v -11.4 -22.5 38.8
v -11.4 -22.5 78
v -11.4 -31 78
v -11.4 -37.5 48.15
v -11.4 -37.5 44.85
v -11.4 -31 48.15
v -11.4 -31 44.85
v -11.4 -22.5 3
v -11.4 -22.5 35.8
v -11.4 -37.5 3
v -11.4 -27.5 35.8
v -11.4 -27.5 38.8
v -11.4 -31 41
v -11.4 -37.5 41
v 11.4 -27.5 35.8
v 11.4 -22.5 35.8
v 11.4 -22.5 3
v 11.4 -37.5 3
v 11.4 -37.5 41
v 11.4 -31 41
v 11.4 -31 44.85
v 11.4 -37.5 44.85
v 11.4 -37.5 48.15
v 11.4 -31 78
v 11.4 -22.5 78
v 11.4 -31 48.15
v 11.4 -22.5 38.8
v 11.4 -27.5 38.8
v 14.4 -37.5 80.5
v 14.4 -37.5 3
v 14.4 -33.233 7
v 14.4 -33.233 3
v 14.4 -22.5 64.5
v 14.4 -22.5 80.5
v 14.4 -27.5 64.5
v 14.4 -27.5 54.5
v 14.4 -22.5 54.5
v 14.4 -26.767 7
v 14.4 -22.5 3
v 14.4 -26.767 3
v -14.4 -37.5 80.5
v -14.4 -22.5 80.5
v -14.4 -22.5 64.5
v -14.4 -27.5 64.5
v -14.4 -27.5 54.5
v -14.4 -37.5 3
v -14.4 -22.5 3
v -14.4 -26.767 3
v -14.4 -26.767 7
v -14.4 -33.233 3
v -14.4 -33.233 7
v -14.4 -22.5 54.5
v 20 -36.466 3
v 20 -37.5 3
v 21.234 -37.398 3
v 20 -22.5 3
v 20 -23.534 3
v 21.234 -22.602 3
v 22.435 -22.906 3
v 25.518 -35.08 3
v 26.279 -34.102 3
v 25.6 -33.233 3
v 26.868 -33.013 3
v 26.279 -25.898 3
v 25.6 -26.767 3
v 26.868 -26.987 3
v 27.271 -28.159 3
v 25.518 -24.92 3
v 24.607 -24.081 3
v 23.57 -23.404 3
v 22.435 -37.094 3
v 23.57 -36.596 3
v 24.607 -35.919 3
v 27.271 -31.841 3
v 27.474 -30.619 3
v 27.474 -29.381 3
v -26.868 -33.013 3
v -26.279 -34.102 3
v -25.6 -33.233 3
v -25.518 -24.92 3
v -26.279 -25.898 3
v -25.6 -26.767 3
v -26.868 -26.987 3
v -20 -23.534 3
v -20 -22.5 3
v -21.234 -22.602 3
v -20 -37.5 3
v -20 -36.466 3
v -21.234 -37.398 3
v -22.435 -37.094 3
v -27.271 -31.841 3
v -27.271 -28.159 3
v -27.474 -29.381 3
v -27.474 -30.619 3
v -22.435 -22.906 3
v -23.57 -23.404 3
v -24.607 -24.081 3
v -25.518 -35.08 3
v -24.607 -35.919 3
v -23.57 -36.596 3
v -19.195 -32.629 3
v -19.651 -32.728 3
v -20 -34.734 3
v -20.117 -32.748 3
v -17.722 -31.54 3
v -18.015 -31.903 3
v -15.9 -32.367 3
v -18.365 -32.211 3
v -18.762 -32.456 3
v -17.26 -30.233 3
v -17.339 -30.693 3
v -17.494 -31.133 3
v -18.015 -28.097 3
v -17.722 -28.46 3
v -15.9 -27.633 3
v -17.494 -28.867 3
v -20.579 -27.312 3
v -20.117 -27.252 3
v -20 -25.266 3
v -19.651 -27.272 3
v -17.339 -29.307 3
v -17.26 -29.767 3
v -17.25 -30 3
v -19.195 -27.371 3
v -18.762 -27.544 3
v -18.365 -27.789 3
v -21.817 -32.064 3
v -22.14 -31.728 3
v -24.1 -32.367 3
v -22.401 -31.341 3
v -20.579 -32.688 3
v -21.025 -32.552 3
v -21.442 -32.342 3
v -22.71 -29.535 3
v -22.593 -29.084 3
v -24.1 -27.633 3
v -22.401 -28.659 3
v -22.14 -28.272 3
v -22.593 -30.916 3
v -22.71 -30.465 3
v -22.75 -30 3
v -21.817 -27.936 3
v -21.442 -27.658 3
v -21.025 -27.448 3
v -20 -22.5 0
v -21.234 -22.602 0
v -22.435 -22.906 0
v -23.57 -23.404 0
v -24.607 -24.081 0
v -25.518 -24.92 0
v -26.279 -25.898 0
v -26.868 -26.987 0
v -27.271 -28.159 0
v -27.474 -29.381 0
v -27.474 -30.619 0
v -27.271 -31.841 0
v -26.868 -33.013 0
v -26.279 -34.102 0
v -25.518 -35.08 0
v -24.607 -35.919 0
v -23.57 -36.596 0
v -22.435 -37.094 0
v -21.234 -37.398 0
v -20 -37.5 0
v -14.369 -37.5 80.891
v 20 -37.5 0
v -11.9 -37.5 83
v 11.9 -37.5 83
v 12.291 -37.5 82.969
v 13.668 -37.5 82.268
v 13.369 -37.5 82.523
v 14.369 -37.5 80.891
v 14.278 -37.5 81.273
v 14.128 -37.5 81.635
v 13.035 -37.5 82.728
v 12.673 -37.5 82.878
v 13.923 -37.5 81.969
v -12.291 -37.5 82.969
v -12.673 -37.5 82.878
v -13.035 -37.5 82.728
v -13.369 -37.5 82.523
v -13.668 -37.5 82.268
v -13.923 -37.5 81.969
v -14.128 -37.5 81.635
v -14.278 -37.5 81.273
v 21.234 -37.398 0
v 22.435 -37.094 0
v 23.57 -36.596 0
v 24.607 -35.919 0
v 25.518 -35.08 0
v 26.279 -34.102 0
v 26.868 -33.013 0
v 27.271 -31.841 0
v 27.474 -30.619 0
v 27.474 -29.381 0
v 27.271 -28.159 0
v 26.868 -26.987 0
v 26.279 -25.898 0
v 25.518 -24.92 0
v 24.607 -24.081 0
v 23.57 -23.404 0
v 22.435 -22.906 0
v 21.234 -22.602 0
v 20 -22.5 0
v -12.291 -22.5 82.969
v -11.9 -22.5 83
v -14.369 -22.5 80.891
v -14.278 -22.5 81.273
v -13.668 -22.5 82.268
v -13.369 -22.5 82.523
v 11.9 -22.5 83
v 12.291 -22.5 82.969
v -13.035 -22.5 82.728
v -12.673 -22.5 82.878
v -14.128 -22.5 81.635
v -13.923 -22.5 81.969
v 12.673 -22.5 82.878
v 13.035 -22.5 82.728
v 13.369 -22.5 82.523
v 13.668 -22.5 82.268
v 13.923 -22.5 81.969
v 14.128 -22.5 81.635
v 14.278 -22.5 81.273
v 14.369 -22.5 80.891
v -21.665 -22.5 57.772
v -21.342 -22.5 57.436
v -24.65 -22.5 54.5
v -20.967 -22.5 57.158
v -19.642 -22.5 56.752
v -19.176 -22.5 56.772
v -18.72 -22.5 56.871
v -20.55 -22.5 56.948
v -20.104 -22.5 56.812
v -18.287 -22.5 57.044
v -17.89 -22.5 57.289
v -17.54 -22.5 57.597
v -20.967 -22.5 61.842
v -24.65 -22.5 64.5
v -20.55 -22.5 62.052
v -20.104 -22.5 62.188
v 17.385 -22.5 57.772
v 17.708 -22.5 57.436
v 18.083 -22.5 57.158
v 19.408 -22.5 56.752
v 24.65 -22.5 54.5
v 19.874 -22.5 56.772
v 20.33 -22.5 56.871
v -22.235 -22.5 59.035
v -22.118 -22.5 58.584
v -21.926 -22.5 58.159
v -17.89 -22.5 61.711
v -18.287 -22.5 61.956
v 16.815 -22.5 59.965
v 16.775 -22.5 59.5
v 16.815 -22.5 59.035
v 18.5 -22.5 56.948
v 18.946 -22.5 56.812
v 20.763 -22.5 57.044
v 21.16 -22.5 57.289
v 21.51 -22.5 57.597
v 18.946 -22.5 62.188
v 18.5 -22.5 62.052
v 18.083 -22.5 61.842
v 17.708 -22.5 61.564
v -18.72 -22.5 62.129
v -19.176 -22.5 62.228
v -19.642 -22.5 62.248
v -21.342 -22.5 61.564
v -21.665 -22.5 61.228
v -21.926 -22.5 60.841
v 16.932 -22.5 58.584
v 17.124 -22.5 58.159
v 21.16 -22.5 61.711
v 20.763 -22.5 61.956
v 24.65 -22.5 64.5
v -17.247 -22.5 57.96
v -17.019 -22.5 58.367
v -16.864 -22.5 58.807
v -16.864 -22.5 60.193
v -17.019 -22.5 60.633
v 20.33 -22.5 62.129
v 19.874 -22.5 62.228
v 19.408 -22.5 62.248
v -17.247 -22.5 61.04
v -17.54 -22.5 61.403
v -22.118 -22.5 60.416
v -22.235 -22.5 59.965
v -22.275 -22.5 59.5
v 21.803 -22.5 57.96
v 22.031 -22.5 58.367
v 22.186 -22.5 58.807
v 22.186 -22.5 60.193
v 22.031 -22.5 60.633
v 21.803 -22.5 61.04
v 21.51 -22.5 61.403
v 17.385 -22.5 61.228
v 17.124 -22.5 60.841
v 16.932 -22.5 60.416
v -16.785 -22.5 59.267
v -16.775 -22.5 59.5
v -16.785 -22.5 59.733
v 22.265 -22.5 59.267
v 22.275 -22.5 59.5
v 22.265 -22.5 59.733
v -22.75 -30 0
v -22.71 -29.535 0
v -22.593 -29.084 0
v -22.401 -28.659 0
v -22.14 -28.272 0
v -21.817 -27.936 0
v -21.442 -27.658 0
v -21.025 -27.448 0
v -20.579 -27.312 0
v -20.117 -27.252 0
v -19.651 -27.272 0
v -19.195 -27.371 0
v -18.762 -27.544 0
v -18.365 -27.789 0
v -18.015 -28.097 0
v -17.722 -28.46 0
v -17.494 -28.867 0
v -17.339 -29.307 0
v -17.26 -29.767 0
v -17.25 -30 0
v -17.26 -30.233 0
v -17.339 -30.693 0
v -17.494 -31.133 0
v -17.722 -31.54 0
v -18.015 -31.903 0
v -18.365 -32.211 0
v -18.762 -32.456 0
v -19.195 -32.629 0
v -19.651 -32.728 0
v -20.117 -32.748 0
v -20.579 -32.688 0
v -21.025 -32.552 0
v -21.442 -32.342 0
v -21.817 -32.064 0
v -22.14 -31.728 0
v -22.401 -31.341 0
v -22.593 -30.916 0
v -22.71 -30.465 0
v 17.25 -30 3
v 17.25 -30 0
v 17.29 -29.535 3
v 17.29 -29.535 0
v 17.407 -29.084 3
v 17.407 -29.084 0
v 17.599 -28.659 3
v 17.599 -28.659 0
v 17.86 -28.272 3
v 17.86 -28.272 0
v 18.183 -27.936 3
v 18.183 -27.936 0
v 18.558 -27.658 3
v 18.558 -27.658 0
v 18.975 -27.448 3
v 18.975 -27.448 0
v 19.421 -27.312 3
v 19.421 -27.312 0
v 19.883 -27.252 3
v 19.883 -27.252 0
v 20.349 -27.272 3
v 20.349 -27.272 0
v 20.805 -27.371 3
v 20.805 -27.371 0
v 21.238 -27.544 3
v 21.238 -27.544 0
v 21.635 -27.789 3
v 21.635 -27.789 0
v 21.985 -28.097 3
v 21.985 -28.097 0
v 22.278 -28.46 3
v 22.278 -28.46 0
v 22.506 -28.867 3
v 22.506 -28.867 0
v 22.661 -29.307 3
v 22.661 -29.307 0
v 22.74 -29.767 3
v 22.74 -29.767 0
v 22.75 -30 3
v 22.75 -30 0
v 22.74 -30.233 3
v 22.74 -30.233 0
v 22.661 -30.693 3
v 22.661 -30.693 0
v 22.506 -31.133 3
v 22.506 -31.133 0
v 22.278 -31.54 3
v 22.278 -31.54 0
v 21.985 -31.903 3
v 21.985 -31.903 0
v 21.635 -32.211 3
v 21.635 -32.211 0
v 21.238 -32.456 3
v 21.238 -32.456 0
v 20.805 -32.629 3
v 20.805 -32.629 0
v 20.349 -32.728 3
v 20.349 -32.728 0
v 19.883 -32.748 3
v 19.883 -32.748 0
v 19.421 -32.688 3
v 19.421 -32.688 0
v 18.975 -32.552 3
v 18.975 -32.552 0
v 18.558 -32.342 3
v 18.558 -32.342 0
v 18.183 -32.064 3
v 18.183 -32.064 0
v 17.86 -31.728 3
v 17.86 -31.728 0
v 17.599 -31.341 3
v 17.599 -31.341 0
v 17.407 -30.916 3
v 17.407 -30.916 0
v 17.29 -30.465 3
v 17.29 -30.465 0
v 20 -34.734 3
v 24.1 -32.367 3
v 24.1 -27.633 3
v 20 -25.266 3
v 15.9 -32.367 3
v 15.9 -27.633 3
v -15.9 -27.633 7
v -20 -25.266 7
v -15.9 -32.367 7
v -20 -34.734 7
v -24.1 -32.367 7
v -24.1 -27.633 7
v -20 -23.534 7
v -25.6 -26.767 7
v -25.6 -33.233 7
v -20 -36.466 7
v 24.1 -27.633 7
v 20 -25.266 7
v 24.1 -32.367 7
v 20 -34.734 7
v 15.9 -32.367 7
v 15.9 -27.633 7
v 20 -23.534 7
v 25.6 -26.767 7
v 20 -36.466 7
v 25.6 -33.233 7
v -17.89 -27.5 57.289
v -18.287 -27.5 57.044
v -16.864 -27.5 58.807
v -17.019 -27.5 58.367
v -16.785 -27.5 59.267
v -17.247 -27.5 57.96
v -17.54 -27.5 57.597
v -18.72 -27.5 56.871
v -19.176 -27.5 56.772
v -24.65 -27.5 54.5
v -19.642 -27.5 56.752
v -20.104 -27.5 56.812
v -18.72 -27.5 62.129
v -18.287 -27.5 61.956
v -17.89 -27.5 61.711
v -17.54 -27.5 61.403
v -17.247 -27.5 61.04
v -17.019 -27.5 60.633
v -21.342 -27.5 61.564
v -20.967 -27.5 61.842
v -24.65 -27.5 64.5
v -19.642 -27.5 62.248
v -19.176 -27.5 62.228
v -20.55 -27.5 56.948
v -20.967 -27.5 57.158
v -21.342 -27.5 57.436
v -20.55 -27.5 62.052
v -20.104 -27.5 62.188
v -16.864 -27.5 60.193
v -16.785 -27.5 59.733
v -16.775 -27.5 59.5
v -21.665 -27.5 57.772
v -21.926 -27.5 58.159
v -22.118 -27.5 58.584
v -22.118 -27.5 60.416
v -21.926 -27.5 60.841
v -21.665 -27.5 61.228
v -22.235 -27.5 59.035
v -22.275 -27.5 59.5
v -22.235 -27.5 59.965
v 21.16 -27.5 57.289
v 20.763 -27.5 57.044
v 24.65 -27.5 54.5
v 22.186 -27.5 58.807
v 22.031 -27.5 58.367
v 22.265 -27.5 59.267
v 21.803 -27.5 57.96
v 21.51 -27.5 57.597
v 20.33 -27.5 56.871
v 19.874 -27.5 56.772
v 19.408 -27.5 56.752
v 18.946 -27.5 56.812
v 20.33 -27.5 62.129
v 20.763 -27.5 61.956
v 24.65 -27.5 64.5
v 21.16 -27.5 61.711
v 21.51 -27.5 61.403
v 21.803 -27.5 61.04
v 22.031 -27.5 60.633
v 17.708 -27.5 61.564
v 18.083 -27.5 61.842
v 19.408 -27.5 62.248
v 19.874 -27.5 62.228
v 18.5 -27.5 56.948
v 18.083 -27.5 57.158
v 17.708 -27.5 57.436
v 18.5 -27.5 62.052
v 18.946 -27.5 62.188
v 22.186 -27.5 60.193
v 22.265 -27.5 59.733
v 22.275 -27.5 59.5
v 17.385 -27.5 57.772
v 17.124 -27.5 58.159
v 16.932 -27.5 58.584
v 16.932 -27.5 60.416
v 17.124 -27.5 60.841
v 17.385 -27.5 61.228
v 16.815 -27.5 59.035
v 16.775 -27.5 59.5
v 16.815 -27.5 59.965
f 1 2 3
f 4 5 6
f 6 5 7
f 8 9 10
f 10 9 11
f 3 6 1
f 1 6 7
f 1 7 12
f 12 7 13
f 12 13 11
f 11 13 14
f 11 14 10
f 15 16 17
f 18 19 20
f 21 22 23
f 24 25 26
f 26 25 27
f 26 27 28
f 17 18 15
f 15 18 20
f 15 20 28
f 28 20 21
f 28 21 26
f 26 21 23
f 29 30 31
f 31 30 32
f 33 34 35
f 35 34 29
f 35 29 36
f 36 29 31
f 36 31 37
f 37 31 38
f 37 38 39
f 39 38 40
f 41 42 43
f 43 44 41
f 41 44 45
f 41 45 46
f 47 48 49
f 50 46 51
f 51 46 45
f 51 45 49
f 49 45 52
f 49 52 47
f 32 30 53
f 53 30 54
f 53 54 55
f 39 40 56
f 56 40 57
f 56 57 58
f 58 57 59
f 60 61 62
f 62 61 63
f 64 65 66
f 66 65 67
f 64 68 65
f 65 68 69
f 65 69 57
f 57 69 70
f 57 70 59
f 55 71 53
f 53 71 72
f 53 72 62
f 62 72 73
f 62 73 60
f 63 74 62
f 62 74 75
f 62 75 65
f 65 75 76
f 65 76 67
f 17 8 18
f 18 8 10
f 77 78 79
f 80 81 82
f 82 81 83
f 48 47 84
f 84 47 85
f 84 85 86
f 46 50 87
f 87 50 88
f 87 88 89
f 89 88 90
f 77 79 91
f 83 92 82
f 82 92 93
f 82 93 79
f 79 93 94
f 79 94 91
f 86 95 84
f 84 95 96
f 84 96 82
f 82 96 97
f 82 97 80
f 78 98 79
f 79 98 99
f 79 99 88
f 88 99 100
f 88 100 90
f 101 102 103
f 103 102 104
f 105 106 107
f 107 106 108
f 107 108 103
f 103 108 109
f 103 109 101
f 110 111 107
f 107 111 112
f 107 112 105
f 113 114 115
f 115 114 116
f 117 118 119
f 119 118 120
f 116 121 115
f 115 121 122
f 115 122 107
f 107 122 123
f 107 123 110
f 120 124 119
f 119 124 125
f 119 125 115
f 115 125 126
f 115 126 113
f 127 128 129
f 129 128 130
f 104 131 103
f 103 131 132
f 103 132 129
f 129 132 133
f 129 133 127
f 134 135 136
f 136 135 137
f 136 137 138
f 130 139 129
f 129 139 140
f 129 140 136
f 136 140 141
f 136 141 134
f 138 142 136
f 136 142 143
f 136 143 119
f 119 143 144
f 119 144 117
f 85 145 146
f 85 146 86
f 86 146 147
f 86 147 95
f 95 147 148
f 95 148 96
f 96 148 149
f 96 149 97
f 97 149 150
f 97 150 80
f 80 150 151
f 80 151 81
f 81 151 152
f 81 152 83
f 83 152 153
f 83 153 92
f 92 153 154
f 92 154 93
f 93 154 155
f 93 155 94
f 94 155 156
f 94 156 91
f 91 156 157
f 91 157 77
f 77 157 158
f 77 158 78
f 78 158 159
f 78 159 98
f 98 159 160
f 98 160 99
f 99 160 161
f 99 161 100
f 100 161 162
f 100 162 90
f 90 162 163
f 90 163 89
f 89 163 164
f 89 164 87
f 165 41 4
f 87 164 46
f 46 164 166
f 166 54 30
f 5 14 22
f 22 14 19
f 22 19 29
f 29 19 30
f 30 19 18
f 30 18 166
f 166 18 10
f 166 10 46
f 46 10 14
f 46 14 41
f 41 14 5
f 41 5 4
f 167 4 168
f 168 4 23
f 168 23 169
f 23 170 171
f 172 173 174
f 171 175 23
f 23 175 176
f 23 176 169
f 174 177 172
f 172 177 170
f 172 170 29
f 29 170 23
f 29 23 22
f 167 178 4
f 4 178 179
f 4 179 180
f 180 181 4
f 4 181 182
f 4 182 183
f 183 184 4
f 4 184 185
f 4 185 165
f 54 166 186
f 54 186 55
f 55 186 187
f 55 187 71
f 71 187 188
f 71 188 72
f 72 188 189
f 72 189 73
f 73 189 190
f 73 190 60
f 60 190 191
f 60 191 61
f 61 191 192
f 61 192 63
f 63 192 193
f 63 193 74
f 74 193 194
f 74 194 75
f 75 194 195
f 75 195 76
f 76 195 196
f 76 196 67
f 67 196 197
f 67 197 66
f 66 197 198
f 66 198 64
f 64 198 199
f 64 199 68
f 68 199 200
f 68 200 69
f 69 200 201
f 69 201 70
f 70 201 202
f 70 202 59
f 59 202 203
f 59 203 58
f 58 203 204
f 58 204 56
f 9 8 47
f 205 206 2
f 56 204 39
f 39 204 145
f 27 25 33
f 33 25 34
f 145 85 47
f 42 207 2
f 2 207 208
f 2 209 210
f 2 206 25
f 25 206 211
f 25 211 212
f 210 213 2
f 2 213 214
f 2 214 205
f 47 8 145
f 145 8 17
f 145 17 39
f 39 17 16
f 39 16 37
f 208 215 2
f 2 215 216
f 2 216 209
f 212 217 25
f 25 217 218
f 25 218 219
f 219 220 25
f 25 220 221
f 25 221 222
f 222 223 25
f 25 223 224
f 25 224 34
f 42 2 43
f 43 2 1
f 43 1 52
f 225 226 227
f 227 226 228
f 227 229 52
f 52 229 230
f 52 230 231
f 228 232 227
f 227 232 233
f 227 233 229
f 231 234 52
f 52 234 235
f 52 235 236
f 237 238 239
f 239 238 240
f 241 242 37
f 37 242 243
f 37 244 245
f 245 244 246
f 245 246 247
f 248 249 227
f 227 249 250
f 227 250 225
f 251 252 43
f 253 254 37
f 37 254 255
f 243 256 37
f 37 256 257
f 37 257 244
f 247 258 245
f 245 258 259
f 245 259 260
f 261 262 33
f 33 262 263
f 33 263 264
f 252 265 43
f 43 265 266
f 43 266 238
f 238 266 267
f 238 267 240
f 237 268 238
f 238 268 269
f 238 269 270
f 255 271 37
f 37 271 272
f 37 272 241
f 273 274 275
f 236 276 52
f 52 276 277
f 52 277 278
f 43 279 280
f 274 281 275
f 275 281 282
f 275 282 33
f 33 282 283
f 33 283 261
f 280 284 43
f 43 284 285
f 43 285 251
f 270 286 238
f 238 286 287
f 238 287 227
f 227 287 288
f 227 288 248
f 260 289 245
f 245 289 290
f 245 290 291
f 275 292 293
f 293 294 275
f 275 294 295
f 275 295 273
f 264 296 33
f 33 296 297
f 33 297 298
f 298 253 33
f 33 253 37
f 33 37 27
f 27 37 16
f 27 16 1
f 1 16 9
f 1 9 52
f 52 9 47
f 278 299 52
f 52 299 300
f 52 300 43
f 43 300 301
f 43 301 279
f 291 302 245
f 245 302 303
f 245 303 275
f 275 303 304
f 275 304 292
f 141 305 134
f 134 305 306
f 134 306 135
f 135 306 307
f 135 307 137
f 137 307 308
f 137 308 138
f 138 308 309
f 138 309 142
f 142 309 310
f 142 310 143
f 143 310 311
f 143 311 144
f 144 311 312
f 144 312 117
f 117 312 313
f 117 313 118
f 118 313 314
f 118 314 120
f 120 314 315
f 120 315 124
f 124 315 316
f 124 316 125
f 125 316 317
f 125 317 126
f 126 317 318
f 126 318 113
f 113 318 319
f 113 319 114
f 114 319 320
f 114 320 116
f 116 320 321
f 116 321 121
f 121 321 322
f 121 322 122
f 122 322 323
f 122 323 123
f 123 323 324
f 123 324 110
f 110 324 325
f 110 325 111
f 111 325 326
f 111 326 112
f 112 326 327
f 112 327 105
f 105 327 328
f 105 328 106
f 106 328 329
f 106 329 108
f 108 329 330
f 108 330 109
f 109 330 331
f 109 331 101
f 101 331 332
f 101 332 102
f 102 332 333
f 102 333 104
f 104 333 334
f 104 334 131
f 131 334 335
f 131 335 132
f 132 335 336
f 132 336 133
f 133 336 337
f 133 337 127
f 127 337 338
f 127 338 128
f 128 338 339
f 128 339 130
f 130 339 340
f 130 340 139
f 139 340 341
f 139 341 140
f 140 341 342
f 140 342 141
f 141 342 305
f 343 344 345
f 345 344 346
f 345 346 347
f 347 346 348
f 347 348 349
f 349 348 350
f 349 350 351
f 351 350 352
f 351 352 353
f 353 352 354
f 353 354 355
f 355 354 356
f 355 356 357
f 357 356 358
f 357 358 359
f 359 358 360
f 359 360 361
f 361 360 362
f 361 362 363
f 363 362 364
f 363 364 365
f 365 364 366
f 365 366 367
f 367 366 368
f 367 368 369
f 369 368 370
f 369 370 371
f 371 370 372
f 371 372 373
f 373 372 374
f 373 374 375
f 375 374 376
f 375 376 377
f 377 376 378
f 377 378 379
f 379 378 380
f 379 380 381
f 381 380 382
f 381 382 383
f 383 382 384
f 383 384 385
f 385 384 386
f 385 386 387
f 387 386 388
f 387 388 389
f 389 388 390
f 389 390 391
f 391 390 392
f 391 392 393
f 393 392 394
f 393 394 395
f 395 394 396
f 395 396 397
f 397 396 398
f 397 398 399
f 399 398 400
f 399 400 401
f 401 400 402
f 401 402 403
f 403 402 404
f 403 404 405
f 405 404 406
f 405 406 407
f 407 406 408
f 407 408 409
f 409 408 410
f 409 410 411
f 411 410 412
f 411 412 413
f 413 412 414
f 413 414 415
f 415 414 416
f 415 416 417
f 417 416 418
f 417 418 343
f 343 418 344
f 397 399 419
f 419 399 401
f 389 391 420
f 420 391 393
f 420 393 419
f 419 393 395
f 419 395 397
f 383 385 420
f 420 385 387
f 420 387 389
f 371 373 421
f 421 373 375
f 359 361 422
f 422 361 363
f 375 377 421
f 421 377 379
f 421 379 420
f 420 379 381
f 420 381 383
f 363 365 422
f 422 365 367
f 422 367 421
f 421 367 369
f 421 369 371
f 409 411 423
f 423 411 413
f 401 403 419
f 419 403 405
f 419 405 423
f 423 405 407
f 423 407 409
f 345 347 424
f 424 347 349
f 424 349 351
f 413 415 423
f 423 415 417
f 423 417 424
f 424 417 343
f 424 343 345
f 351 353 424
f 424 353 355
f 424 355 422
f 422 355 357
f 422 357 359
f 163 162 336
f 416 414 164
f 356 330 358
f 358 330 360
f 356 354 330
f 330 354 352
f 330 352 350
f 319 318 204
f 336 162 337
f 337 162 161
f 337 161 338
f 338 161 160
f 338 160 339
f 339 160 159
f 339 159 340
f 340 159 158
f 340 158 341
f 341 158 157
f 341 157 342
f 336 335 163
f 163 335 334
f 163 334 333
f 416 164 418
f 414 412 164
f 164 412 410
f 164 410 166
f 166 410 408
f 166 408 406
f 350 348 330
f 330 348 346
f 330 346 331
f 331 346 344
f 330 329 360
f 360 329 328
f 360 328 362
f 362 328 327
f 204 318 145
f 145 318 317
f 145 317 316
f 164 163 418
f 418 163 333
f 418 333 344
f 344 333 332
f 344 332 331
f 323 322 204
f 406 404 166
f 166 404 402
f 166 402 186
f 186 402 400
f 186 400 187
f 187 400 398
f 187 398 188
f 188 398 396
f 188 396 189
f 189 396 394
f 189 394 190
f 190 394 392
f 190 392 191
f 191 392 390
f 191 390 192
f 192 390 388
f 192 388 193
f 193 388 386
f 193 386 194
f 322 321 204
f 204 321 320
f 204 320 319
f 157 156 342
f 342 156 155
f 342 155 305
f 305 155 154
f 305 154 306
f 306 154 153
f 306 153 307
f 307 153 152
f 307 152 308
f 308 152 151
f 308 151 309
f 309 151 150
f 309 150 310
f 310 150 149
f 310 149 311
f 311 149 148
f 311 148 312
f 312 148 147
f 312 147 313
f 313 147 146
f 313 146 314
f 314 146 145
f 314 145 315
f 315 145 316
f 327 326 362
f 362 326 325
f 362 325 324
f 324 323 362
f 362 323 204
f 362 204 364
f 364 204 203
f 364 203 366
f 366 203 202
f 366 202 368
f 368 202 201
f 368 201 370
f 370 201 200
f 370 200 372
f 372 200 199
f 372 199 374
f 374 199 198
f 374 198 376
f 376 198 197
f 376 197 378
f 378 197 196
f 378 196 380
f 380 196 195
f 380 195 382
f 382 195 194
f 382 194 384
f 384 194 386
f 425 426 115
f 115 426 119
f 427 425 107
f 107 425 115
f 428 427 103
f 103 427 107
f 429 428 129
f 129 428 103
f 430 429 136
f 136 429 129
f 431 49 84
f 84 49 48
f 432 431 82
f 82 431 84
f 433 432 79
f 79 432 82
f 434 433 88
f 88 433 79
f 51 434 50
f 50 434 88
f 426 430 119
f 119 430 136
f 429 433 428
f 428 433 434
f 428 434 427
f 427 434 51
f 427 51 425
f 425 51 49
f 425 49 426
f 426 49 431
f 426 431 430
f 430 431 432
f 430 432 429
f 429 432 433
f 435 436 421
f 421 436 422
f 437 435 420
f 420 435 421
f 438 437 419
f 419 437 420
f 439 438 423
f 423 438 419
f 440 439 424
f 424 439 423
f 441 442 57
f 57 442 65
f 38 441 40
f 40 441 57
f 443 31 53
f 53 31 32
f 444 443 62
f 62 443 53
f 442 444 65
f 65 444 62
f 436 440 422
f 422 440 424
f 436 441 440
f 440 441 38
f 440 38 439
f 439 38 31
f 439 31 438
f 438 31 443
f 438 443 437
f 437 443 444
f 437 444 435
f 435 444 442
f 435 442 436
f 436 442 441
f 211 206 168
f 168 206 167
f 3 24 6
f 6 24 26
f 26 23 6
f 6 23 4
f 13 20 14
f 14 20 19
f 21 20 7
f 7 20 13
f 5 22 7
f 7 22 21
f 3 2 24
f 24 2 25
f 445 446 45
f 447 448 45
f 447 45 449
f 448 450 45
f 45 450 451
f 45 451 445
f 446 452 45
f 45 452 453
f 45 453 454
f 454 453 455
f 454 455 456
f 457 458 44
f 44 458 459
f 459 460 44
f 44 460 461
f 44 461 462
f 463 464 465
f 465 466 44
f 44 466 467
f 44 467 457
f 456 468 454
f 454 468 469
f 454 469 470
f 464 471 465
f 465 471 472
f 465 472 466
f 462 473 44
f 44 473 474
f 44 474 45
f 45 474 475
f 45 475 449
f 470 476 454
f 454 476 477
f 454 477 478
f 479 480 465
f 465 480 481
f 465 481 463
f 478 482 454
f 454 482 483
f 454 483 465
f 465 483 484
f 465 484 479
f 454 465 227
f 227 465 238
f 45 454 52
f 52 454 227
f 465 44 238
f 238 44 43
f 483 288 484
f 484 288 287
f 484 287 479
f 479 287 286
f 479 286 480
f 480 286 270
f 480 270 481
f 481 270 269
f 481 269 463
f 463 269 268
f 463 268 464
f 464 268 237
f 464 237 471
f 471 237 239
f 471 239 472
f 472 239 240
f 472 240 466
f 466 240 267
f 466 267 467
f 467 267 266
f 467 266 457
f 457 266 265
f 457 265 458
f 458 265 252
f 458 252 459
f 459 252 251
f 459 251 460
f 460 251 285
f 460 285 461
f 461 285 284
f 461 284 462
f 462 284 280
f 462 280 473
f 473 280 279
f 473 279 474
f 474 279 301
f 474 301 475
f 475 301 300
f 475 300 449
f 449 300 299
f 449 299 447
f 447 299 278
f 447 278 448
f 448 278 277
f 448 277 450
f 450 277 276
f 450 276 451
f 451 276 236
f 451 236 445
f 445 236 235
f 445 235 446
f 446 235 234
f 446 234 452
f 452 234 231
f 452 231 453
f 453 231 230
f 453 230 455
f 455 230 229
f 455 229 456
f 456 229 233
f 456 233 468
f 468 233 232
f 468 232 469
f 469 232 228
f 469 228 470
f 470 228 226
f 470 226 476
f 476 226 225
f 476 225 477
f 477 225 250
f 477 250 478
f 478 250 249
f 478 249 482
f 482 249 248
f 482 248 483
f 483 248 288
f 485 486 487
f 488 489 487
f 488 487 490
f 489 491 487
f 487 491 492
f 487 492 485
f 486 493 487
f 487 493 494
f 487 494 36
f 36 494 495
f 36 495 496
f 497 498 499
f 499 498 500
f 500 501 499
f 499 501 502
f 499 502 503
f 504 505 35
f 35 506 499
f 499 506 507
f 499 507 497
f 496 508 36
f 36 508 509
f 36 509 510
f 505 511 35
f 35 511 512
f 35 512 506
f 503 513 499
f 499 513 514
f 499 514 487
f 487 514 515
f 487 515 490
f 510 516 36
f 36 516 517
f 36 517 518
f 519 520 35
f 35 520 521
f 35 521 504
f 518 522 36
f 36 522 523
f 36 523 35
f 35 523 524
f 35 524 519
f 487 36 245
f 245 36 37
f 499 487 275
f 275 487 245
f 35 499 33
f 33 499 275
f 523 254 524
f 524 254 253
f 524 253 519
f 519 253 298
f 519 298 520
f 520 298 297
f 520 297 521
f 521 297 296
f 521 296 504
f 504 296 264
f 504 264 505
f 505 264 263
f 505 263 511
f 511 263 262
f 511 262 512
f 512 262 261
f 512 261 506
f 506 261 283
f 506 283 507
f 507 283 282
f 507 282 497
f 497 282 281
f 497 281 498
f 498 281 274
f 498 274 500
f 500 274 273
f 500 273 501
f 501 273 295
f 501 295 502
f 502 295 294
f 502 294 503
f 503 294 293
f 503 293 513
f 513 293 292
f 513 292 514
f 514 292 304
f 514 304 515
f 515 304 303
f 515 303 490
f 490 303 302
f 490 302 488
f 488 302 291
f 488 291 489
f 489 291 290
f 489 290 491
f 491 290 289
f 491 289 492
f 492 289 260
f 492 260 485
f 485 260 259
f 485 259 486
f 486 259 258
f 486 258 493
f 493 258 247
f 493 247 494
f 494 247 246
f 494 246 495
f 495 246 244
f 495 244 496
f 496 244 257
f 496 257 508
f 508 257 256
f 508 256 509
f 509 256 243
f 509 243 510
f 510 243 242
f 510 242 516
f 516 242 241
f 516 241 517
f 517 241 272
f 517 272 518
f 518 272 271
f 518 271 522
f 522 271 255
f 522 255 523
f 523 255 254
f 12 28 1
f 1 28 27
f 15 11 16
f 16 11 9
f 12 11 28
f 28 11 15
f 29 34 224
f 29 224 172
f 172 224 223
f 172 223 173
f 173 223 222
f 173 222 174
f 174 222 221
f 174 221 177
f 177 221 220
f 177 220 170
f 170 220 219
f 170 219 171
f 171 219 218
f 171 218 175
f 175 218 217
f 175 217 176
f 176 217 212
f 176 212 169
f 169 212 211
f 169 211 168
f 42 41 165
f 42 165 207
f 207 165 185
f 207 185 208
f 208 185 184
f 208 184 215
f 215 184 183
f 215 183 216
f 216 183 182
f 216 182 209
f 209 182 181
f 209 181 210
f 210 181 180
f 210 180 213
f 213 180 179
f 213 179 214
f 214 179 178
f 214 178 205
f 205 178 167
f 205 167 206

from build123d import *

# Parameters (mm, degrees)
SKETCH2_R           = 7.5
SKETCH2_R_2         = 2.75
BOSS_EXTRUDE1_DEPTH = 3
SKETCH3_R           = 5.6
BOSS_EXTRUDE2_DEPTH = 4
BOSS_EXTRUDE3_DEPTH = 80
SKETCH5_W           = 29.85
SKETCH5_H           = 6.5
SKETCH5_W_2         = 3.85
BOSS_EXTRUDE4_DEPTH = 80
SKETCH6_W           = 29.85
SKETCH6_H           = 6.5
SKETCH6_W_2         = 3.85
CUT_EXTRUDE1_DEPTH  = 54.2
BOSS_EXTRUDE5_DEPTH = 22.8
SKETCH8_W           = 10.25
SKETCH8_H           = 10
SKETCH8_R           = 2.75
BOSS_EXTRUDE6_DEPTH = 5
BOSS_EXTRUDE7_DEPTH = 5
FILLET1_R           = 2.5


with BuildPart() as part:
    # Sketch2 → Boss-Extrude1 (new body)
    # profile 1 of 4: a face of its own
    with BuildSketch(Plane.XY):
        with Locations((-20, -30)):
            Circle(SKETCH2_R)
        with Locations((-20, -30)):
            Circle(SKETCH2_R_2, mode=Mode.SUBTRACT)
    # profile 2 of 4: a face of its own
    with BuildSketch(Plane.XY):
        with BuildLine():
            Line((12.5, -22.5), (-20, -22.5))
            ThreePointArc((-20, -22.5), (-14.696699141, -24.696699141), (-12.5, -30))
            ThreePointArc((-12.5, -30), (-14.696699141, -35.303300859), (-20, -37.5))
            Line((-20, -37.5), (20, -37.5))
            ThreePointArc((20, -37.5), (14.696699141, -35.303300859), (12.5, -30))
            Line((12.5, -30), (12.5, -22.5))
        make_face()
    # profile 3 of 4: a face of its own
    with BuildSketch(Plane.XY):
        with Locations((20, -30)):
            Circle(SKETCH2_R)
        with Locations((20, -30)):
            Circle(SKETCH2_R_2, mode=Mode.SUBTRACT)
    # profile 4 of 4: a face of its own
    with BuildSketch(Plane.XY):
        with BuildLine():
            Line((20, -22.5), (12.5, -22.5))
            Line((12.5, -22.5), (12.5, -30))
            ThreePointArc((12.5, -30), (14.696699141, -24.696699141), (20, -22.5))
        make_face()
    extrude(amount=BOSS_EXTRUDE1_DEPTH)

    # Sketch3 → Boss-Extrude2 (add)
    # profile 1 of 14: a face of its own
    with BuildSketch(Plane.XY.offset(3)):
        with BuildLine():
            Line((-14.4, -26.766838493), (-17.199999967, -25.150257758))
            ThreePointArc((-17.199999967, -25.150257758), (-15.150257729, -27.200000016), (-14.4, -30))
            Line((-14.4, -30), (-14.4, -26.766838493))
        make_face()
    # profile 2 of 14: a face of its own
    with BuildSketch(Plane.XY.offset(3)):
        with Locations((-20, -30)):
            Circle(SKETCH3_R)
        Polygon((-15.9, -27.632863896), (-20, -25.265727793), (-24.1, -27.632863896), (-24.1, -32.367136104), (-20, -34.734272207), (-15.9, -32.367136104), align=None, mode=Mode.SUBTRACT)
    # profile 3 of 14: a face of its own
    with BuildSketch(Plane.XY.offset(3)):
        with BuildLine():
            Line((-17.199999967, -25.150257758), (-20, -23.533676985))
            Line((-20, -23.533676985), (-22.800000033, -25.150257758))
            ThreePointArc((-22.800000033, -25.150257758), (-20, -24.4), (-17.199999967, -25.150257758))
        make_face()
    # profile 4 of 14: a face of its own
    with BuildSketch(Plane.XY.offset(3)):
        with BuildLine():
            ThreePointArc((-25.6, -30), (-24.849742271, -27.200000016), (-22.800000033, -25.150257758))
            Line((-22.800000033, -25.150257758), (-25.6, -26.766838493))
            Line((-25.6, -26.766838493), (-25.6, -30))
        make_face()
    # profile 5 of 14: a face of its own
    with BuildSketch(Plane.XY.offset(3)):
        with BuildLine():
            ThreePointArc((-22.800000033, -34.849742242), (-24.849742271, -32.799999984), (-25.6, -30))
            Line((-25.6, -30), (-25.6, -33.233161507))
            Line((-25.6, -33.233161507), (-22.800000033, -34.849742242))
        make_face()
    # profile 6 of 14: a face of its own
    with BuildSketch(Plane.XY.offset(3)):
        with BuildLine():
            ThreePointArc((-17.199999967, -34.849742242), (-20, -35.6), (-22.800000033, -34.849742242))
            Line((-22.800000033, -34.849742242), (-20, -36.466323015))
            Line((-20, -36.466323015), (-17.199999967, -34.849742242))
        make_face()
    # profile 7 of 14: a face of its own
    with BuildSketch(Plane.XY.offset(3)):
        with BuildLine():
            Line((-14.4, -33.233161507), (-14.4, -30))
            ThreePointArc((-14.4, -30), (-15.150257729, -32.799999984), (-17.199999967, -34.849742242))
            Line((-17.199999967, -34.849742242), (-14.4, -33.233161507))
        make_face()
    # profile 8 of 14: a face of its own
    with BuildSketch(Plane.XY.offset(3)):
        with BuildLine():
            Line((25.6, -26.766838493), (22.800000033, -25.150257758))
            ThreePointArc((22.800000033, -25.150257758), (24.849742271, -27.200000016), (25.6, -30))
            Line((25.6, -30), (25.6, -26.766838493))
        make_face()
    # profile 9 of 14: a face of its own
    with BuildSketch(Plane.XY.offset(3)):
        with Locations((20, -30)):
            Circle(SKETCH3_R)
        Polygon((24.1, -27.632863896), (20, -25.265727793), (15.9, -27.632863896), (15.9, -32.367136104), (20, -34.734272207), (24.1, -32.367136104), align=None, mode=Mode.SUBTRACT)
    # profile 10 of 14: a face of its own
    with BuildSketch(Plane.XY.offset(3)):
        with BuildLine():
            Line((22.800000033, -25.150257758), (20, -23.533676985))
            Line((20, -23.533676985), (17.199999967, -25.150257758))
            ThreePointArc((17.199999967, -25.150257758), (20, -24.4), (22.800000033, -25.150257758))
        make_face()
    # profile 11 of 14: a face of its own
    with BuildSketch(Plane.XY.offset(3)):
        with BuildLine():
            ThreePointArc((14.4, -30), (15.150257729, -27.200000016), (17.199999967, -25.150257758))
            Line((17.199999967, -25.150257758), (14.4, -26.766838493))
            Line((14.4, -26.766838493), (14.4, -30))
        make_face()
    # profile 12 of 14: a face of its own
    with BuildSketch(Plane.XY.offset(3)):
        with BuildLine():
            ThreePointArc((17.199999967, -34.849742242), (15.150257729, -32.799999984), (14.4, -30))
            Line((14.4, -30), (14.4, -33.233161507))
            Line((14.4, -33.233161507), (17.199999967, -34.849742242))
        make_face()
    # profile 13 of 14: a face of its own
    with BuildSketch(Plane.XY.offset(3)):
        with BuildLine():
            ThreePointArc((22.799999796, -34.849742379), (19.999999863, -35.6), (17.199999967, -34.849742242))
            Line((17.199999967, -34.849742242), (20, -36.466323015))
            Line((20, -36.466323015), (22.799999796, -34.849742379))
        make_face()
    # profile 14 of 14: a face of its own
    with BuildSketch(Plane.XY.offset(3)):
        with BuildLine():
            Line((25.6, -33.233161507), (25.6, -30))
            ThreePointArc((25.6, -30), (24.849742202, -32.800000102), (22.799999796, -34.849742379))
            Line((22.799999796, -34.849742379), (25.6, -33.233161507))
        make_face()
    extrude(amount=BOSS_EXTRUDE2_DEPTH)

    # Sketch4 → Boss-Extrude3 (add)
    with BuildSketch(Plane.XY.offset(3)):
        Polygon((-14.4, -26.766838493), (-14.4, -22.5), (-11.4, -22.5), (-11.4, -37.5), (-14.4, -37.5), align=None)
        Polygon((14.4, -30), (14.4, -22.5), (11.4, -22.5), (11.4, -37.5), (14.4, -37.5), align=None)
    extrude(amount=BOSS_EXTRUDE3_DEPTH)

    # Sketch5 → Boss-Extrude4 (add)
    with BuildSketch(Plane.ZY.offset(-11.4)):
        with Locations((63.075, -34.25)):
            Rectangle(SKETCH5_W, SKETCH5_H)
        with Locations((42.925, -34.25)):
            Rectangle(SKETCH5_W_2, SKETCH5_H)
    extrude(amount=BOSS_EXTRUDE4_DEPTH)

    # Sketch6 → Cut-Extrude1 (cut)
    with BuildSketch(Plane.ZY.offset(68.6)):
        with Locations((63.075, -34.25)):
            Rectangle(SKETCH6_W, SKETCH6_H)
        with Locations((42.925, -34.25)):
            Rectangle(SKETCH6_W_2, SKETCH6_H)
    extrude(amount=-CUT_EXTRUDE1_DEPTH, mode=Mode.SUBTRACT)

    # Sketch7 → Boss-Extrude5 (add)
    with BuildSketch(Plane.ZY.offset(-11.4)):
        Polygon((78, -31), (78, -22.5), (83, -22.5), (83, -37.5), (78, -37.5), align=None)
    extrude(amount=BOSS_EXTRUDE5_DEPTH)

    # Sketch8 → Boss-Extrude6 (add)
    # profile 1 of 2: a face of its own
    with BuildSketch(Plane.XZ.offset(22.5)):
        with Locations((-19.525, 59.5)):
            Rectangle(SKETCH8_W, SKETCH8_H)
        with Locations((-19.525, 59.5)):
            Circle(SKETCH8_R, mode=Mode.SUBTRACT)
    # profile 2 of 2: a face of its own
    with BuildSketch(Plane.XZ.offset(22.5)):
        with Locations((19.525, 59.5)):
            Rectangle(SKETCH8_W, SKETCH8_H)
        with Locations((19.525, 59.5)):
            Circle(SKETCH8_R, mode=Mode.SUBTRACT)
    extrude(amount=BOSS_EXTRUDE6_DEPTH)

    # Sketch10 → Boss-Extrude7 (add)
    with BuildSketch(Plane(origin=(0, -22.5, 0), x_dir=(1, 0, 0), z_dir=(0, 1, 0))):
        Polygon((-10, -38.8), (10, -38.8), (11.4, -38.8), (11.4, -35.8), (-11.4, -35.8), (-11.4, -38.8), align=None)
    extrude(amount=-BOSS_EXTRUDE7_DEPTH)

    # Fillet1
    fillet1_edges = [part.edges().sort_by_distance(p)[0] for p in [
        (-14.4, -30, 83),
        (14.4, -30, 83),
    ]]
    fillet(fillet1_edges, radius=FILLET1_R)


solid = part.part
